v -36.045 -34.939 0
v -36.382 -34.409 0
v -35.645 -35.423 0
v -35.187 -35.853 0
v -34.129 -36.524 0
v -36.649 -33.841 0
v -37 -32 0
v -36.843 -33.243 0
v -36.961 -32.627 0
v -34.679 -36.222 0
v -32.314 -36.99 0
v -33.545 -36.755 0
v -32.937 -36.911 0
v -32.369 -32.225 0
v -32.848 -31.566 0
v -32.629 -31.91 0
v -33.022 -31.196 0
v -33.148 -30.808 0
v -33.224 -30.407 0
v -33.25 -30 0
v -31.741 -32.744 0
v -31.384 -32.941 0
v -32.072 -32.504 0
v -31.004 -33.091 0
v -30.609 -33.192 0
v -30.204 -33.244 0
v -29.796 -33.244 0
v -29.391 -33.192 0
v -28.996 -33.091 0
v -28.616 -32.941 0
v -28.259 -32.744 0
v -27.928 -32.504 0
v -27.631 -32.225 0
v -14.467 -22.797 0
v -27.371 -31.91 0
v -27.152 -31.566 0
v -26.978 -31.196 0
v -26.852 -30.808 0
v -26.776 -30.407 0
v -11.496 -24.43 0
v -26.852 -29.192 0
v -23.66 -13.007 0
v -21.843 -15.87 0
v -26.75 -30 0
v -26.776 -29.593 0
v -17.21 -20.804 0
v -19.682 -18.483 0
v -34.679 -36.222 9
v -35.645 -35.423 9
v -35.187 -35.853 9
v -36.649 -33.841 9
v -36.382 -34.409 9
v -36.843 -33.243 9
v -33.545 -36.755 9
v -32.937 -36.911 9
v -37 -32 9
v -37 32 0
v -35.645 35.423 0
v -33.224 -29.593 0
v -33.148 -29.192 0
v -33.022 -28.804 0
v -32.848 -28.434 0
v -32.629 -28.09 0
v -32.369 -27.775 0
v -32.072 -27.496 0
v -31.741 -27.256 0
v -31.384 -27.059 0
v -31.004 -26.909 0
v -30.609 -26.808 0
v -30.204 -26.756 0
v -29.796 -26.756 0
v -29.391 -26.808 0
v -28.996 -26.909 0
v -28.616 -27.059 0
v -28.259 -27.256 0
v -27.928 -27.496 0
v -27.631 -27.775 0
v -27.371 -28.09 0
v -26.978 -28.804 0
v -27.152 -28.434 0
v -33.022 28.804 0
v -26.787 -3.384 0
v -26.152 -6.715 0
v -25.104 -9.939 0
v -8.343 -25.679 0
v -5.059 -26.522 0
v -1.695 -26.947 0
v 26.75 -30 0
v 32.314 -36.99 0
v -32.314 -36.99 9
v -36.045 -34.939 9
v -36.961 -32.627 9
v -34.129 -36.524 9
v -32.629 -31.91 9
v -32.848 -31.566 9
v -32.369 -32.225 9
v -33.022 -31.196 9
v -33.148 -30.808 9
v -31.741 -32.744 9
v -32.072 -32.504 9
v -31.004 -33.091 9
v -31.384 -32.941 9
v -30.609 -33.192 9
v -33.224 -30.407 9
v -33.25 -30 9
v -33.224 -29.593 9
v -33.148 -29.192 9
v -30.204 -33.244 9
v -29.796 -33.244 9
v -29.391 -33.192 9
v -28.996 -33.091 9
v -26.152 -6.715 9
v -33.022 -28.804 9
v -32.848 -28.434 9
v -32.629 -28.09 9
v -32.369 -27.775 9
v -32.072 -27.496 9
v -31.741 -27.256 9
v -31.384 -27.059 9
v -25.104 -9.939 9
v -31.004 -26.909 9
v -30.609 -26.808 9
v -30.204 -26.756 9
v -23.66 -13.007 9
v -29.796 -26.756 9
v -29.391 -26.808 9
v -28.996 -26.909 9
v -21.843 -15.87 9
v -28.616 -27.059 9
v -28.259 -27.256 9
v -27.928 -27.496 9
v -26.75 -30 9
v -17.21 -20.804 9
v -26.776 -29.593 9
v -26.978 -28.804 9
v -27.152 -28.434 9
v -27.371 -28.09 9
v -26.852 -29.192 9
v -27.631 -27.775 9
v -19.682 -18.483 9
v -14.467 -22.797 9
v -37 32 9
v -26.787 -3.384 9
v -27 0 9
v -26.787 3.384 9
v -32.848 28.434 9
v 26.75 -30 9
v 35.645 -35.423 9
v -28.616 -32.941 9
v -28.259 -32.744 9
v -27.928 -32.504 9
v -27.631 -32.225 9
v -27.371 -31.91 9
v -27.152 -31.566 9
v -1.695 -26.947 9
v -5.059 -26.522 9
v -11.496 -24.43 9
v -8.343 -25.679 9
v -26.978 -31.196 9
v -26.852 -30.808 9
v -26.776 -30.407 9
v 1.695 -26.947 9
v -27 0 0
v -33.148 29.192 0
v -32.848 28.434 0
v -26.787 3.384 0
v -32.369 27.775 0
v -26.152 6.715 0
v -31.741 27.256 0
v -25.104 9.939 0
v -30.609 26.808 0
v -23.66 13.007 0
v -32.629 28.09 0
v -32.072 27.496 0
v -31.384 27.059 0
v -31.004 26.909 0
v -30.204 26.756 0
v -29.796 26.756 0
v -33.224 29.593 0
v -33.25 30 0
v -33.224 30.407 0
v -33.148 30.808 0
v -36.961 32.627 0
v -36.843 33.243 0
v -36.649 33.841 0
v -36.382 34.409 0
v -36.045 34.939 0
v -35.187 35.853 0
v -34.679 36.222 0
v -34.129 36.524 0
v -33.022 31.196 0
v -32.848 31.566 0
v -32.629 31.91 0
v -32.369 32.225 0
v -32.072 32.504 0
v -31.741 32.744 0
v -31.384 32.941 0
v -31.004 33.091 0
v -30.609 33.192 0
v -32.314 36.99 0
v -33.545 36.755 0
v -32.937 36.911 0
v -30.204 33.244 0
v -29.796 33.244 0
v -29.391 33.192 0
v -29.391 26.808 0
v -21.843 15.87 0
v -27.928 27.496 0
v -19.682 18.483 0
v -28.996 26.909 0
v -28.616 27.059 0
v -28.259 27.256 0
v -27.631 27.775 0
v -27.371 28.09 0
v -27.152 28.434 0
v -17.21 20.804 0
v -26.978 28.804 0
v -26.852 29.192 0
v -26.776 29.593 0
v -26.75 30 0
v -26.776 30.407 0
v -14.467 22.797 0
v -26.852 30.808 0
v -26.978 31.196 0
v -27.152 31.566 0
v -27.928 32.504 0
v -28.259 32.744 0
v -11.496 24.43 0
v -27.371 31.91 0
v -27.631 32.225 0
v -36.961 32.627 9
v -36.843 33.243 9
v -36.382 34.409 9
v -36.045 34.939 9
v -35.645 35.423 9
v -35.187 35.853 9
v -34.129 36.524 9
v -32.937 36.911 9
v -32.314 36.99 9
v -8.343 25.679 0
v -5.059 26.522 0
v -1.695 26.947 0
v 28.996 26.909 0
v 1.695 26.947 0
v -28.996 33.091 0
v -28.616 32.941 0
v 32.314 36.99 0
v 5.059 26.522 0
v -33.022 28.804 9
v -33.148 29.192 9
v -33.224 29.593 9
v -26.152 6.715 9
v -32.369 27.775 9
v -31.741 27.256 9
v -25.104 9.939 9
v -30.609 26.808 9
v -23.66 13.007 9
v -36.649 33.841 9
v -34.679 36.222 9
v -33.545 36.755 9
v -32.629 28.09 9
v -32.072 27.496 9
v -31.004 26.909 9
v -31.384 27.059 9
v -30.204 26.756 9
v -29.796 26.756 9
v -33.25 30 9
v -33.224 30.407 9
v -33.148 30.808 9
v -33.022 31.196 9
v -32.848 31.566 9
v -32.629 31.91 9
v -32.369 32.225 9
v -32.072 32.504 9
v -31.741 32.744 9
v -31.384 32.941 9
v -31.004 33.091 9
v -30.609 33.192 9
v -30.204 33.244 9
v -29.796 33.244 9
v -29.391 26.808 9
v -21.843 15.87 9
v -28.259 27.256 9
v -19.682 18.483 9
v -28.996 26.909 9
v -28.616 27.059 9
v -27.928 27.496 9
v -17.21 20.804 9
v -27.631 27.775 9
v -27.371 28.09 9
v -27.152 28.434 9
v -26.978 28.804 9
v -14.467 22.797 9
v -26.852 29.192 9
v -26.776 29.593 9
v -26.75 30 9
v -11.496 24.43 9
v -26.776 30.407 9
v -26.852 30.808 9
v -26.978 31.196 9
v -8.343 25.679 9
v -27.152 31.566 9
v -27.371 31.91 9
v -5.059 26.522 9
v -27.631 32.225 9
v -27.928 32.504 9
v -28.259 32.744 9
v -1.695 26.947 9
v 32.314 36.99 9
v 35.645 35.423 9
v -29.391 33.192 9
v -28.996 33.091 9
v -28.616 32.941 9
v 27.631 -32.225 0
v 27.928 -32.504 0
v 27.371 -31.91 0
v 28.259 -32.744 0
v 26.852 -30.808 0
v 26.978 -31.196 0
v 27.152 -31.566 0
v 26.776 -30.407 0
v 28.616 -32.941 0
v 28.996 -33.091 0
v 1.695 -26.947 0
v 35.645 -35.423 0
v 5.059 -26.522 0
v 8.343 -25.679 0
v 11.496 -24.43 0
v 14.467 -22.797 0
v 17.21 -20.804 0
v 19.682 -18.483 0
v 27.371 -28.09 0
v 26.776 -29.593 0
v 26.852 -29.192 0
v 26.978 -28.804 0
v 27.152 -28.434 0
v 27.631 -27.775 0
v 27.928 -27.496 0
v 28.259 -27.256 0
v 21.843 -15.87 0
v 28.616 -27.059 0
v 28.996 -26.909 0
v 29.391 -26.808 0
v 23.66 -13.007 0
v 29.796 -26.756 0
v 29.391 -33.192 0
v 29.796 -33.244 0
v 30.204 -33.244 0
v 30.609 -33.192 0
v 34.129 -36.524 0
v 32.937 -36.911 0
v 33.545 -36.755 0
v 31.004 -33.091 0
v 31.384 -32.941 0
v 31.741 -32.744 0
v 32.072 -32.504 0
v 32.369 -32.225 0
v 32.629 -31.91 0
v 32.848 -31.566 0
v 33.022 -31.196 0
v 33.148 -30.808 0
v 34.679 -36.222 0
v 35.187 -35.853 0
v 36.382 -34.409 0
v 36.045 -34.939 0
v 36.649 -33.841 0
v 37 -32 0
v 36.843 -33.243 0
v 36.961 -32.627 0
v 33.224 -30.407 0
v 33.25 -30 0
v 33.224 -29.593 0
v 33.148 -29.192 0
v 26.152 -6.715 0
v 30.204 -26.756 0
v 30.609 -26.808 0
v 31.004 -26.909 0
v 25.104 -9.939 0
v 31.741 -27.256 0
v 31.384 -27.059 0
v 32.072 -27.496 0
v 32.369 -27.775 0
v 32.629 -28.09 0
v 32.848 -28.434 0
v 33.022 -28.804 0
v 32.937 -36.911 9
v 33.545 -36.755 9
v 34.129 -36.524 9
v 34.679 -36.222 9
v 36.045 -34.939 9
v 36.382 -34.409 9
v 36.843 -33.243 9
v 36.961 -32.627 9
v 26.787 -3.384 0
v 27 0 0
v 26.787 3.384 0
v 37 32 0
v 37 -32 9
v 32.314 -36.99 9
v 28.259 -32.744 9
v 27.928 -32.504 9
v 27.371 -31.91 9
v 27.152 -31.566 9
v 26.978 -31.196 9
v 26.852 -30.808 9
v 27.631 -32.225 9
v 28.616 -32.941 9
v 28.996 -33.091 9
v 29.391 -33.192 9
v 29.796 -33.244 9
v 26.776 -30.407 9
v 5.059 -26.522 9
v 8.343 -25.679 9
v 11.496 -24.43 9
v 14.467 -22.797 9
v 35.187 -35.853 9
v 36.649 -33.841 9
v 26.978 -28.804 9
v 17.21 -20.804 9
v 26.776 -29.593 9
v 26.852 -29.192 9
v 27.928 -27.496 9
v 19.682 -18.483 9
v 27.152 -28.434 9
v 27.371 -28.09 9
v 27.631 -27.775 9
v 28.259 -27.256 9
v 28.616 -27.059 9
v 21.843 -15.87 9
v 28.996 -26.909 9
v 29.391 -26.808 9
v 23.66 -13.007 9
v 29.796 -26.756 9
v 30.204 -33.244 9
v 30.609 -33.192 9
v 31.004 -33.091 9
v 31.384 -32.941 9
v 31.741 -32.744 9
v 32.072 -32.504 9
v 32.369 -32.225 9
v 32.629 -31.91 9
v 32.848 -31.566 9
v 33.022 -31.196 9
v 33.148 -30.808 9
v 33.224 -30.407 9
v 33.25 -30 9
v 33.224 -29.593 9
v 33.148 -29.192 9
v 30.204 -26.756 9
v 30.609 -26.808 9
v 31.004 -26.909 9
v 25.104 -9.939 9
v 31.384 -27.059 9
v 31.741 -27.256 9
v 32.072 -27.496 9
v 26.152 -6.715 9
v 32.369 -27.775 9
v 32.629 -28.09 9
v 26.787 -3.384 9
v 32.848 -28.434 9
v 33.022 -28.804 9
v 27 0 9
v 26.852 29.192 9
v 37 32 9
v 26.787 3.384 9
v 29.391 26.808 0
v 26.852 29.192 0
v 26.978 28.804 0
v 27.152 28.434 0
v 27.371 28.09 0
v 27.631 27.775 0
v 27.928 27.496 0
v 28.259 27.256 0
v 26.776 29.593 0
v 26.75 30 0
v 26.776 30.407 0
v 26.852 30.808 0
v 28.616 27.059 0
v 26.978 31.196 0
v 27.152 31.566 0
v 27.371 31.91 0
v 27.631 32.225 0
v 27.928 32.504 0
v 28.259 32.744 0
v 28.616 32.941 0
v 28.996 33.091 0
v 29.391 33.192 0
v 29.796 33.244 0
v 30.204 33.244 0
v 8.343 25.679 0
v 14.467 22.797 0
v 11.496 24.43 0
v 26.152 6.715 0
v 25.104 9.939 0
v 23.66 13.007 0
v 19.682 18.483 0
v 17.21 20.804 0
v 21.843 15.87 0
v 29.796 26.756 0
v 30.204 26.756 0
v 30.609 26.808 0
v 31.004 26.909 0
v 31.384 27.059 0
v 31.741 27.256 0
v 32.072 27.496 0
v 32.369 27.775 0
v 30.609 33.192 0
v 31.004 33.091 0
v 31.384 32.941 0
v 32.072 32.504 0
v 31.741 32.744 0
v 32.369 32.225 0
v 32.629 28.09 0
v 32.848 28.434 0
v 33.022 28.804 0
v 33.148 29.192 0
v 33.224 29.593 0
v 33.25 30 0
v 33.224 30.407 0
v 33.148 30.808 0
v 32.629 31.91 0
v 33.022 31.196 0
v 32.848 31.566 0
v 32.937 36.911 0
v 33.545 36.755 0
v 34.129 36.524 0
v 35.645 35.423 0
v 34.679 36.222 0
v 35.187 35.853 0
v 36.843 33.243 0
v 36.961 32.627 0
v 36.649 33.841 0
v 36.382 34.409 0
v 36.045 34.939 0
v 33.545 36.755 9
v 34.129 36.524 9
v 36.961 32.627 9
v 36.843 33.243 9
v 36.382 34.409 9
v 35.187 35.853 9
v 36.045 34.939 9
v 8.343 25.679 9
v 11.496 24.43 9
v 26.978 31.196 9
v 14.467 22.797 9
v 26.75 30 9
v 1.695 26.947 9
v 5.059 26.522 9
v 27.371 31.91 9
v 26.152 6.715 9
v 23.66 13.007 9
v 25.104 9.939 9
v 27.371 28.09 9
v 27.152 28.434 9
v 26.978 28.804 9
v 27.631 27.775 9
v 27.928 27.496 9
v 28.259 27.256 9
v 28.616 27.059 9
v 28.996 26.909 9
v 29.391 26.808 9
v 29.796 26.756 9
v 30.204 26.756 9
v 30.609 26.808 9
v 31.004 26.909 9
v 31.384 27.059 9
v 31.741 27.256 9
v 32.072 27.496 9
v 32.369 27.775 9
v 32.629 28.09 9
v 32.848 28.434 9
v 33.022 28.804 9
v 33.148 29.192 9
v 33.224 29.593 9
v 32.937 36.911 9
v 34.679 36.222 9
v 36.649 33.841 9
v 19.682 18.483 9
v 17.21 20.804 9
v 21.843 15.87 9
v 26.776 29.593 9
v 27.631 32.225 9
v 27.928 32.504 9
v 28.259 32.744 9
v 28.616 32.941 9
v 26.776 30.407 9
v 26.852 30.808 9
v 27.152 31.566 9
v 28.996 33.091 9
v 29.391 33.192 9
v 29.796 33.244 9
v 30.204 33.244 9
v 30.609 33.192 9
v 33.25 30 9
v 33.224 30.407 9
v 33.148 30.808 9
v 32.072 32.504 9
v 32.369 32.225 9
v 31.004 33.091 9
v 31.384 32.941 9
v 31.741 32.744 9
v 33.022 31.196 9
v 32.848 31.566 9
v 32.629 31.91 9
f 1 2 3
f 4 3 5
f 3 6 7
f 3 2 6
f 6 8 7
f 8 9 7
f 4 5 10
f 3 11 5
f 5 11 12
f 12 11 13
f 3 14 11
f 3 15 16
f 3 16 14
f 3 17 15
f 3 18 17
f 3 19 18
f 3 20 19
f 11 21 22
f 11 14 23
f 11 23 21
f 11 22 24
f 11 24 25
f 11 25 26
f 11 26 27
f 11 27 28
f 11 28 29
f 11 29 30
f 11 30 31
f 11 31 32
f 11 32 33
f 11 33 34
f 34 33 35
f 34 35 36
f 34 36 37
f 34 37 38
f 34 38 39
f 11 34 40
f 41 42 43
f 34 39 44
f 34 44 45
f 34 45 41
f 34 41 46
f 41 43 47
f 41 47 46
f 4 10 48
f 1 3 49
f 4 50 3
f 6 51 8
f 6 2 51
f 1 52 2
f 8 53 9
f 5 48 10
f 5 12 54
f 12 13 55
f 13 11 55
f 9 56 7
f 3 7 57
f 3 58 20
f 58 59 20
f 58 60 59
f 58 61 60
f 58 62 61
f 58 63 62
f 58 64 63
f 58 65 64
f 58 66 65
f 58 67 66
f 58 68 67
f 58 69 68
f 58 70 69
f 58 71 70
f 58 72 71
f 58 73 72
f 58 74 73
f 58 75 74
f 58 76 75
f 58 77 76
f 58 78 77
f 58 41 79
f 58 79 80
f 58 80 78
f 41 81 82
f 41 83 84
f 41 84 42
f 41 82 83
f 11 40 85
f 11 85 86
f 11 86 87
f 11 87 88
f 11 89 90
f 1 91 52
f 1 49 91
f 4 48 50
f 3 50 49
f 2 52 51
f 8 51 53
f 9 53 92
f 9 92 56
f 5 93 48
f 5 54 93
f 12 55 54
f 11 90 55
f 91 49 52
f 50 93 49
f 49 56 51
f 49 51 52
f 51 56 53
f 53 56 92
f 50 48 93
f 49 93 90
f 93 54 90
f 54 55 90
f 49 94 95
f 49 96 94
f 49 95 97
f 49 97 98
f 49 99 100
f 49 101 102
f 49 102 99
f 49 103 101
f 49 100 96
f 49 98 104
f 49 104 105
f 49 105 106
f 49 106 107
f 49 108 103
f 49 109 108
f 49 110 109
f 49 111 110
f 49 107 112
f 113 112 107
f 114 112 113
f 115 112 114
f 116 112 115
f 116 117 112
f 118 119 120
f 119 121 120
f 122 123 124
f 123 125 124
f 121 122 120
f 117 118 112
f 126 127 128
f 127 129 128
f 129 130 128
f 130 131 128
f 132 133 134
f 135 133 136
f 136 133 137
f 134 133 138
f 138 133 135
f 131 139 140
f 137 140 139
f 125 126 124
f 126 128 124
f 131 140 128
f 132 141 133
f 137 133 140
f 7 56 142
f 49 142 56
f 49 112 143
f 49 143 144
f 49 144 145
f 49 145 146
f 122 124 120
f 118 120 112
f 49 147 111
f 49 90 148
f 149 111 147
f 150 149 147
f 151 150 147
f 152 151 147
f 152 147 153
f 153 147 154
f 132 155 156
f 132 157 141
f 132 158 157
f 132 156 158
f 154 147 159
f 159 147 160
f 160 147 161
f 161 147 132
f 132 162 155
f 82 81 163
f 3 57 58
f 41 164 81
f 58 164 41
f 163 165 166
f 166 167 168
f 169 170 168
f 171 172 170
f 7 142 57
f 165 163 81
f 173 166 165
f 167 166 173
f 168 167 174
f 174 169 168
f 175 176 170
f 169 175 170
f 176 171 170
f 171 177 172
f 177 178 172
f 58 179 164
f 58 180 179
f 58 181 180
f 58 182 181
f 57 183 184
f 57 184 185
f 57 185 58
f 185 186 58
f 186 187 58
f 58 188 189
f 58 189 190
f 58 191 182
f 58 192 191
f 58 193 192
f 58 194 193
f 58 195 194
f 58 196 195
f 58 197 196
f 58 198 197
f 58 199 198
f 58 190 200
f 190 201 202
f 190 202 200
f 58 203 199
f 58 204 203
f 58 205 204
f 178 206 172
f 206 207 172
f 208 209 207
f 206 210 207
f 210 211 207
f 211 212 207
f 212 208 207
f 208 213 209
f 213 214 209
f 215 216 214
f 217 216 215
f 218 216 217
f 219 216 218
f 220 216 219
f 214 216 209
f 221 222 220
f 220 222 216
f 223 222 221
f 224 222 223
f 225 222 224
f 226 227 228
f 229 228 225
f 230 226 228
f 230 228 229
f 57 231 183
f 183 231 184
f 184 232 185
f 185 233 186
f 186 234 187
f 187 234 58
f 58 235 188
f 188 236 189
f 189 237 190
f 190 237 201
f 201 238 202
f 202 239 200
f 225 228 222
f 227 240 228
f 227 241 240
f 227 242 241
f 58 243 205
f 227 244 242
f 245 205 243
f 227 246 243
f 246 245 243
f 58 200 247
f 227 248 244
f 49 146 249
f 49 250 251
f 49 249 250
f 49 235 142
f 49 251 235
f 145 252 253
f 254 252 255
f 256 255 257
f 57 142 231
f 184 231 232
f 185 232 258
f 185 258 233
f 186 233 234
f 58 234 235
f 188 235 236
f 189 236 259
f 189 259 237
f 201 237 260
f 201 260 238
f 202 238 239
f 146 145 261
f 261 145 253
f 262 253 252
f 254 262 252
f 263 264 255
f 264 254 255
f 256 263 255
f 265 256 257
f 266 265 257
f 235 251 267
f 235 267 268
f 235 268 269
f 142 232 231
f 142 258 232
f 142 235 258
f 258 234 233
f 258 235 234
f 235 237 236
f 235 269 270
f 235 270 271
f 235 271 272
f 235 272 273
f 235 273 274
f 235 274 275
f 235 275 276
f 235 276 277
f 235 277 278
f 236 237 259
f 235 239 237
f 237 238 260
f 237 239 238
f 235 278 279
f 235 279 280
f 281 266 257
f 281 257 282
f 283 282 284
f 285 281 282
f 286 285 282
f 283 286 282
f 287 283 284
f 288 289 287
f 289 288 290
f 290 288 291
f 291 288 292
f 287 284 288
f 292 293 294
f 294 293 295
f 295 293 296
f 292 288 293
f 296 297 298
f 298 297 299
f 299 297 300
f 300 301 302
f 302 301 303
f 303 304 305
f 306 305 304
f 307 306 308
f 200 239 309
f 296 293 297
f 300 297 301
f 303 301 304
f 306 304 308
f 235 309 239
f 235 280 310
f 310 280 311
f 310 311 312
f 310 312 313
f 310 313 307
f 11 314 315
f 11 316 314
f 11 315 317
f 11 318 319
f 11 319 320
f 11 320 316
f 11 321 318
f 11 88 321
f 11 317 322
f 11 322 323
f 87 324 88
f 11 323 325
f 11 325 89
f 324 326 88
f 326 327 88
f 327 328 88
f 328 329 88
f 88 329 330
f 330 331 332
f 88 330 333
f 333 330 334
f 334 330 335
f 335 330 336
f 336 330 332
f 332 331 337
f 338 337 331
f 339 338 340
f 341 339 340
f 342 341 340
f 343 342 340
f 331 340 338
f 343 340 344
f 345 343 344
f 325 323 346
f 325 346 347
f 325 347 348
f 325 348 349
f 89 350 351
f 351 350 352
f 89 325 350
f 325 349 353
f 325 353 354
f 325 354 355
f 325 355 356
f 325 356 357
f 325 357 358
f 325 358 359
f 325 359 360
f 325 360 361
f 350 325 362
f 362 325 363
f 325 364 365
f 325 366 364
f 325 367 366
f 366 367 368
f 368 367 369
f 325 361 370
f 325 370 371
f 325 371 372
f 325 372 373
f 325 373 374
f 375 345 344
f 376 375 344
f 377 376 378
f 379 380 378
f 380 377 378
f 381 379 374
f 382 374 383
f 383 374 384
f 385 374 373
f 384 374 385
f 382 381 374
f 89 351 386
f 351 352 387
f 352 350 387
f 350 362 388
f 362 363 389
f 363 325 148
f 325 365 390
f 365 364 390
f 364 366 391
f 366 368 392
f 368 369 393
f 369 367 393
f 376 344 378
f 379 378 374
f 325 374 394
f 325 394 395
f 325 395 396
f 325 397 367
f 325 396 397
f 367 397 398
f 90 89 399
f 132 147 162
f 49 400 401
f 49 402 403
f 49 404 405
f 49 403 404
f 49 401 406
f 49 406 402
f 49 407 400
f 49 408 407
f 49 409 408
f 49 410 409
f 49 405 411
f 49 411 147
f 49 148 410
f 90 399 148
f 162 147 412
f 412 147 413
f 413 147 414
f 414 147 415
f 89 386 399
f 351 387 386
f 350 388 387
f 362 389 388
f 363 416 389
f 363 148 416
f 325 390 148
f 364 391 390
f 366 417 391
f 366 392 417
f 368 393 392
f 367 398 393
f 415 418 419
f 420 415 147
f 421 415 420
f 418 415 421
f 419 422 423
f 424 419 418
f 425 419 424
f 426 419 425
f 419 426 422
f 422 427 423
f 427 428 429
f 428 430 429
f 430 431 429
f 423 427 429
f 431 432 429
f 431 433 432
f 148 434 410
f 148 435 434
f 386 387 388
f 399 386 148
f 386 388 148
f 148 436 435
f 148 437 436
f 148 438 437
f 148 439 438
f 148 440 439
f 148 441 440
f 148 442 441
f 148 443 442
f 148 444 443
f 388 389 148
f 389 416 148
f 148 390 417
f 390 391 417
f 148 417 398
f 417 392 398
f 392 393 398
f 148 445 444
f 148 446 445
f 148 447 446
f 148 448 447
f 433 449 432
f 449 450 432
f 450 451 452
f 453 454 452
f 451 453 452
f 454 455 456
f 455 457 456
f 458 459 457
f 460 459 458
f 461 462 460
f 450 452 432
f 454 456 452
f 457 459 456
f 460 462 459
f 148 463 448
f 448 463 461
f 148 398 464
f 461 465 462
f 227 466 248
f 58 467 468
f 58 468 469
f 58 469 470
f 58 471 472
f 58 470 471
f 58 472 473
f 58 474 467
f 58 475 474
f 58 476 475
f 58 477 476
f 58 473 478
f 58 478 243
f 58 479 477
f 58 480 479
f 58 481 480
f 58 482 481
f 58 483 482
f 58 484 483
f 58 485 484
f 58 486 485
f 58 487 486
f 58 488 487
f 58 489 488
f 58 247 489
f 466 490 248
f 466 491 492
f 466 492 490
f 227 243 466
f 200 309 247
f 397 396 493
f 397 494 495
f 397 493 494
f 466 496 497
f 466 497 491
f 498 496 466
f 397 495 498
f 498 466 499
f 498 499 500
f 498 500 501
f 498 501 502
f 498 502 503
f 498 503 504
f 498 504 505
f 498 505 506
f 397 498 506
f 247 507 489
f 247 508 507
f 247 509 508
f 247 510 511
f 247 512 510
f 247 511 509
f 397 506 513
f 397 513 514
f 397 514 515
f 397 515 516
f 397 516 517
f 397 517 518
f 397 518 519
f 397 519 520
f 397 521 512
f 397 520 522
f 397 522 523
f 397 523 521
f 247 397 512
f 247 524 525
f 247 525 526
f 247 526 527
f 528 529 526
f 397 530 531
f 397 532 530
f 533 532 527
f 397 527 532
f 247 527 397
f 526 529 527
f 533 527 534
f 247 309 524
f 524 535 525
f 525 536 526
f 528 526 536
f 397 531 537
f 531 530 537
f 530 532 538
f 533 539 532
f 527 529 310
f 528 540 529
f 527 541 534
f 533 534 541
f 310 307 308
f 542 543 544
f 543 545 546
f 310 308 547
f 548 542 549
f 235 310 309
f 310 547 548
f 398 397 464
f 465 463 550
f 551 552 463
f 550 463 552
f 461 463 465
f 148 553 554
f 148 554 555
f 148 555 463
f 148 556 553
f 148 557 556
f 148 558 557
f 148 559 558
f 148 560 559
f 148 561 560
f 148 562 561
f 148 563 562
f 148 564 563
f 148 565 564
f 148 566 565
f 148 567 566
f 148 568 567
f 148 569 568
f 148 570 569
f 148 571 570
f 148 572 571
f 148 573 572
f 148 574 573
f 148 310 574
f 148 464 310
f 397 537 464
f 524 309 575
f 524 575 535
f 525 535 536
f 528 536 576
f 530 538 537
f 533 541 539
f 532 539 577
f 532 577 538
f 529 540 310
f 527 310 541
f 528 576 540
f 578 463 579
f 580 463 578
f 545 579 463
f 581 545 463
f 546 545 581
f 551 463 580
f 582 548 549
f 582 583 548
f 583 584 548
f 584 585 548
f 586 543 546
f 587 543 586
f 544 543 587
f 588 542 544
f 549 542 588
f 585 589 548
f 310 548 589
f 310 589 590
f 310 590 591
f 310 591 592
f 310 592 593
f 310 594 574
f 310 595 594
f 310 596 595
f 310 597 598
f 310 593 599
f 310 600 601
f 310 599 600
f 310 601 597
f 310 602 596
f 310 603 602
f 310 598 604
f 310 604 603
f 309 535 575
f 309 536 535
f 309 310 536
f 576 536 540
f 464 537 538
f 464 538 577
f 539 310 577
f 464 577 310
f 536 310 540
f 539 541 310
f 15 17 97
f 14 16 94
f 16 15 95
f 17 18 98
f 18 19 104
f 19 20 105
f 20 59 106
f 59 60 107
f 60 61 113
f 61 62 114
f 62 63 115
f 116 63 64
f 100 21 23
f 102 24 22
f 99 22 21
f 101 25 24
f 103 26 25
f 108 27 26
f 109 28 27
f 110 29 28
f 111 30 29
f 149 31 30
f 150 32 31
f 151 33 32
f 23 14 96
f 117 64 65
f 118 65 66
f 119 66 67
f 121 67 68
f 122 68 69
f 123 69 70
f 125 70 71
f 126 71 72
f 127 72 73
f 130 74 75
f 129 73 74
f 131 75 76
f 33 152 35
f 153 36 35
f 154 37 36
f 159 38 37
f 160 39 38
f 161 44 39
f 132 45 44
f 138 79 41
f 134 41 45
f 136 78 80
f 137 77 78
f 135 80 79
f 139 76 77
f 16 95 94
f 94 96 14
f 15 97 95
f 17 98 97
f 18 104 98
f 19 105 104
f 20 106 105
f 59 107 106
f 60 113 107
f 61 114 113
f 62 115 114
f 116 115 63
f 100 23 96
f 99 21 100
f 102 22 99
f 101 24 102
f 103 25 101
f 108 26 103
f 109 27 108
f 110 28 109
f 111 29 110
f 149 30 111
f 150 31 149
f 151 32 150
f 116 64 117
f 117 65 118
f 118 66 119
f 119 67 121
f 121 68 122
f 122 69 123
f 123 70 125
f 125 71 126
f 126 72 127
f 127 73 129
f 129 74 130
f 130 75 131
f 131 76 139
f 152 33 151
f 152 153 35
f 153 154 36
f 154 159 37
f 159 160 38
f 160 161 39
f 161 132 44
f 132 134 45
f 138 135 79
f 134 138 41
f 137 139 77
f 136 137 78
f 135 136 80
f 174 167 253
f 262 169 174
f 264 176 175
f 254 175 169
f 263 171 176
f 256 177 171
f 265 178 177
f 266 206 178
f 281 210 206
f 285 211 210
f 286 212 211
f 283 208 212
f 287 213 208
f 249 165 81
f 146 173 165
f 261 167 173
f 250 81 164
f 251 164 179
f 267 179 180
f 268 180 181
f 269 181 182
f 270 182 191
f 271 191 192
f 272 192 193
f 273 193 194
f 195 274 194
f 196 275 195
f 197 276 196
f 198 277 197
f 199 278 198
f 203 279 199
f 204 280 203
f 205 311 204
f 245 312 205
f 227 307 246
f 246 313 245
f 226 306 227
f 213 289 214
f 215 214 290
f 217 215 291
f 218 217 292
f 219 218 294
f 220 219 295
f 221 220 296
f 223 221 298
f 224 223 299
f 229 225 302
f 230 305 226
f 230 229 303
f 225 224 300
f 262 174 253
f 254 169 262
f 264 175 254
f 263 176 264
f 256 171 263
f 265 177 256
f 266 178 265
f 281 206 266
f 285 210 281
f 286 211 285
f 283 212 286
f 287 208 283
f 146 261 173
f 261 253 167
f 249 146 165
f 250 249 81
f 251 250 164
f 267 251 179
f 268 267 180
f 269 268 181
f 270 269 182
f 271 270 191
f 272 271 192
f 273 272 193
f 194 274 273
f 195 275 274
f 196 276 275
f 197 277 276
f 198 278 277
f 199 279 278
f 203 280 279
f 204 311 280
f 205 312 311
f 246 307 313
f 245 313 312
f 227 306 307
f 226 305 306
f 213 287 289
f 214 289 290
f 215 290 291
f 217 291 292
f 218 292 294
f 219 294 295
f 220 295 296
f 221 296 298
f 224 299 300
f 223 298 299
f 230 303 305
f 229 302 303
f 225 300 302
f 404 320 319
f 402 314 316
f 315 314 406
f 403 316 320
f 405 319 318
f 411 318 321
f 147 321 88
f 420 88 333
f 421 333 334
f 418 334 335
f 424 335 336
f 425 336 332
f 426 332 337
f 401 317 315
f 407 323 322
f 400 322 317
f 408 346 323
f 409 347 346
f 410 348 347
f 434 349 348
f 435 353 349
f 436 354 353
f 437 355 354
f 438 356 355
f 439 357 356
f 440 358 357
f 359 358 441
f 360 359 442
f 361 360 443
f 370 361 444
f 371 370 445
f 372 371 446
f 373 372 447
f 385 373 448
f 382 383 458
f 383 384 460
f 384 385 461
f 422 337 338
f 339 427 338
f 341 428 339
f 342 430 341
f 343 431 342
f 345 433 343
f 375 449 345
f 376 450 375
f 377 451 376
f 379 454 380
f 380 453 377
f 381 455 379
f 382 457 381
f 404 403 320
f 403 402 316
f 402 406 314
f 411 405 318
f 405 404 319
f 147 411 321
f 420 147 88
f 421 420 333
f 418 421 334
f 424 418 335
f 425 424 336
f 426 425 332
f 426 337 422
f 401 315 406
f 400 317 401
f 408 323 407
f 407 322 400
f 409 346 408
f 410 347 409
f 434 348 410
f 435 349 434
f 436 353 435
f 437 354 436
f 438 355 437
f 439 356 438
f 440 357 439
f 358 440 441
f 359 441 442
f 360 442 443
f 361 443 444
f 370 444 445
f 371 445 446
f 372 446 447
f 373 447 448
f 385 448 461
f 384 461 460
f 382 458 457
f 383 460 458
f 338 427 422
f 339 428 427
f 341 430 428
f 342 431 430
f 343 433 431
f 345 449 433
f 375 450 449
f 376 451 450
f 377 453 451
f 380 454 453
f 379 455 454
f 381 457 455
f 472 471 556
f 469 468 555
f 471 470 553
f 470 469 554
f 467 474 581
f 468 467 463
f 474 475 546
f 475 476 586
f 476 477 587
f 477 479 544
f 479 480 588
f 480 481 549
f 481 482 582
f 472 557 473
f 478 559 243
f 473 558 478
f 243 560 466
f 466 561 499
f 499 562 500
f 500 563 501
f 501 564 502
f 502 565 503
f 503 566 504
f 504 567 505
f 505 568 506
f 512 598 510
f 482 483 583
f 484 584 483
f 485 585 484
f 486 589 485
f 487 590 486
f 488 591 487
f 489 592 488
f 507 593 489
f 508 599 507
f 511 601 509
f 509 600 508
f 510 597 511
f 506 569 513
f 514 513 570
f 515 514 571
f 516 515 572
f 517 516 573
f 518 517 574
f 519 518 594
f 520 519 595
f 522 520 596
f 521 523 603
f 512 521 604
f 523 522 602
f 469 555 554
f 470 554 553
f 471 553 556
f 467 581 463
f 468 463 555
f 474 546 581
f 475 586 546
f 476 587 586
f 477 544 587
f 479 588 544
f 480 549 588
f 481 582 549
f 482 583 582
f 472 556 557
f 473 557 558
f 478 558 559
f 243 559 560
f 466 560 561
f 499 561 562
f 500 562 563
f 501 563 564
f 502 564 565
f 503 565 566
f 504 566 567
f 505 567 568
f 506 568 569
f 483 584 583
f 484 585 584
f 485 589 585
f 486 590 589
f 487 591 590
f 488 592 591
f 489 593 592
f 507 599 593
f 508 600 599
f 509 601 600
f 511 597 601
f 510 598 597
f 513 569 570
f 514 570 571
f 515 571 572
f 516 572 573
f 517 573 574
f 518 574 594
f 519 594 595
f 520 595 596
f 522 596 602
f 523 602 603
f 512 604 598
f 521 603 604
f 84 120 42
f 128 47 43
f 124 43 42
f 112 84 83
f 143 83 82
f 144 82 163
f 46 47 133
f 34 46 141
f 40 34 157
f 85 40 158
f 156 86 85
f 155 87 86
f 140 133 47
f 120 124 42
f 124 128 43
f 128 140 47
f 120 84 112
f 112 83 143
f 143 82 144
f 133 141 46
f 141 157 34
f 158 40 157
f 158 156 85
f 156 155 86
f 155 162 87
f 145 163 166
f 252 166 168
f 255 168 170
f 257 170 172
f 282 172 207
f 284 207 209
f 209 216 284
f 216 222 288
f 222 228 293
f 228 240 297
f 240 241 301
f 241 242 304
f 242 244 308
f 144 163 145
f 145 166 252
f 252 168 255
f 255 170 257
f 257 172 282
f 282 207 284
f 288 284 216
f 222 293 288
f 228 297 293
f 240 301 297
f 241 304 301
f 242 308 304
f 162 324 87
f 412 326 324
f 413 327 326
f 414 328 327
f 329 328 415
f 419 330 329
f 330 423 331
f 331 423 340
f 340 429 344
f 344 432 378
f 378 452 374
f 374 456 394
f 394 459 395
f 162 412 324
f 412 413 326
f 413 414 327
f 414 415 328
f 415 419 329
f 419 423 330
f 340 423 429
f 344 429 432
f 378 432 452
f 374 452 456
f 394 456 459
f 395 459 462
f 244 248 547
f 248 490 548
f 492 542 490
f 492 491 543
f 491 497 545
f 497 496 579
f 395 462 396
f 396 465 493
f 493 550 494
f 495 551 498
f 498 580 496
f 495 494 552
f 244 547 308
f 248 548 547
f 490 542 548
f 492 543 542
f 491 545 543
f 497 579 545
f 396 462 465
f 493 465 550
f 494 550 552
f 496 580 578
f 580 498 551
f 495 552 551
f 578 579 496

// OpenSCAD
$fn = 50;

difference() {
	union() {
		hull() {
			translate(v = [-32.0, 32.0, 0]) {
				cylinder(h = 9, r = 5);
			}
			translate(v = [32.0, 32.0, 0]) {
				cylinder(h = 9, r = 5);
			}
			translate(v = [-32.0, -32.0, 0]) {
				cylinder(h = 9, r = 5);
			}
			translate(v = [32.0, -32.0, 0]) {
				cylinder(h = 9, r = 5);
			}
		}
	}
	union() {
		translate(v = [-30.0, -30.0, -100.0]) {
			cylinder(h = 200, r = 3.25);
		}
		translate(v = [-30.0, 30.0, -100.0]) {
			cylinder(h = 200, r = 3.25);
		}
		translate(v = [30.0, -30.0, -100.0]) {
			cylinder(h = 200, r = 3.25);
		}
		translate(v = [30.0, 30.0, -100.0]) {
			cylinder(h = 200, r = 3.25);
		}
		translate(v = [-30.0, -30.0, -100.0]) {
			cylinder(h = 200, r = 1.8);
		}
		translate(v = [-30.0, 30.0, -100.0]) {
			cylinder(h = 200, r = 1.8);
		}
		translate(v = [30.0, -30.0, -100.0]) {
			cylinder(h = 200, r = 1.8);
		}
		translate(v = [30.0, 30.0, -100.0]) {
			cylinder(h = 200, r = 1.8);
		}
		cylinder(h = 9, r = 27.0);
	}
}
